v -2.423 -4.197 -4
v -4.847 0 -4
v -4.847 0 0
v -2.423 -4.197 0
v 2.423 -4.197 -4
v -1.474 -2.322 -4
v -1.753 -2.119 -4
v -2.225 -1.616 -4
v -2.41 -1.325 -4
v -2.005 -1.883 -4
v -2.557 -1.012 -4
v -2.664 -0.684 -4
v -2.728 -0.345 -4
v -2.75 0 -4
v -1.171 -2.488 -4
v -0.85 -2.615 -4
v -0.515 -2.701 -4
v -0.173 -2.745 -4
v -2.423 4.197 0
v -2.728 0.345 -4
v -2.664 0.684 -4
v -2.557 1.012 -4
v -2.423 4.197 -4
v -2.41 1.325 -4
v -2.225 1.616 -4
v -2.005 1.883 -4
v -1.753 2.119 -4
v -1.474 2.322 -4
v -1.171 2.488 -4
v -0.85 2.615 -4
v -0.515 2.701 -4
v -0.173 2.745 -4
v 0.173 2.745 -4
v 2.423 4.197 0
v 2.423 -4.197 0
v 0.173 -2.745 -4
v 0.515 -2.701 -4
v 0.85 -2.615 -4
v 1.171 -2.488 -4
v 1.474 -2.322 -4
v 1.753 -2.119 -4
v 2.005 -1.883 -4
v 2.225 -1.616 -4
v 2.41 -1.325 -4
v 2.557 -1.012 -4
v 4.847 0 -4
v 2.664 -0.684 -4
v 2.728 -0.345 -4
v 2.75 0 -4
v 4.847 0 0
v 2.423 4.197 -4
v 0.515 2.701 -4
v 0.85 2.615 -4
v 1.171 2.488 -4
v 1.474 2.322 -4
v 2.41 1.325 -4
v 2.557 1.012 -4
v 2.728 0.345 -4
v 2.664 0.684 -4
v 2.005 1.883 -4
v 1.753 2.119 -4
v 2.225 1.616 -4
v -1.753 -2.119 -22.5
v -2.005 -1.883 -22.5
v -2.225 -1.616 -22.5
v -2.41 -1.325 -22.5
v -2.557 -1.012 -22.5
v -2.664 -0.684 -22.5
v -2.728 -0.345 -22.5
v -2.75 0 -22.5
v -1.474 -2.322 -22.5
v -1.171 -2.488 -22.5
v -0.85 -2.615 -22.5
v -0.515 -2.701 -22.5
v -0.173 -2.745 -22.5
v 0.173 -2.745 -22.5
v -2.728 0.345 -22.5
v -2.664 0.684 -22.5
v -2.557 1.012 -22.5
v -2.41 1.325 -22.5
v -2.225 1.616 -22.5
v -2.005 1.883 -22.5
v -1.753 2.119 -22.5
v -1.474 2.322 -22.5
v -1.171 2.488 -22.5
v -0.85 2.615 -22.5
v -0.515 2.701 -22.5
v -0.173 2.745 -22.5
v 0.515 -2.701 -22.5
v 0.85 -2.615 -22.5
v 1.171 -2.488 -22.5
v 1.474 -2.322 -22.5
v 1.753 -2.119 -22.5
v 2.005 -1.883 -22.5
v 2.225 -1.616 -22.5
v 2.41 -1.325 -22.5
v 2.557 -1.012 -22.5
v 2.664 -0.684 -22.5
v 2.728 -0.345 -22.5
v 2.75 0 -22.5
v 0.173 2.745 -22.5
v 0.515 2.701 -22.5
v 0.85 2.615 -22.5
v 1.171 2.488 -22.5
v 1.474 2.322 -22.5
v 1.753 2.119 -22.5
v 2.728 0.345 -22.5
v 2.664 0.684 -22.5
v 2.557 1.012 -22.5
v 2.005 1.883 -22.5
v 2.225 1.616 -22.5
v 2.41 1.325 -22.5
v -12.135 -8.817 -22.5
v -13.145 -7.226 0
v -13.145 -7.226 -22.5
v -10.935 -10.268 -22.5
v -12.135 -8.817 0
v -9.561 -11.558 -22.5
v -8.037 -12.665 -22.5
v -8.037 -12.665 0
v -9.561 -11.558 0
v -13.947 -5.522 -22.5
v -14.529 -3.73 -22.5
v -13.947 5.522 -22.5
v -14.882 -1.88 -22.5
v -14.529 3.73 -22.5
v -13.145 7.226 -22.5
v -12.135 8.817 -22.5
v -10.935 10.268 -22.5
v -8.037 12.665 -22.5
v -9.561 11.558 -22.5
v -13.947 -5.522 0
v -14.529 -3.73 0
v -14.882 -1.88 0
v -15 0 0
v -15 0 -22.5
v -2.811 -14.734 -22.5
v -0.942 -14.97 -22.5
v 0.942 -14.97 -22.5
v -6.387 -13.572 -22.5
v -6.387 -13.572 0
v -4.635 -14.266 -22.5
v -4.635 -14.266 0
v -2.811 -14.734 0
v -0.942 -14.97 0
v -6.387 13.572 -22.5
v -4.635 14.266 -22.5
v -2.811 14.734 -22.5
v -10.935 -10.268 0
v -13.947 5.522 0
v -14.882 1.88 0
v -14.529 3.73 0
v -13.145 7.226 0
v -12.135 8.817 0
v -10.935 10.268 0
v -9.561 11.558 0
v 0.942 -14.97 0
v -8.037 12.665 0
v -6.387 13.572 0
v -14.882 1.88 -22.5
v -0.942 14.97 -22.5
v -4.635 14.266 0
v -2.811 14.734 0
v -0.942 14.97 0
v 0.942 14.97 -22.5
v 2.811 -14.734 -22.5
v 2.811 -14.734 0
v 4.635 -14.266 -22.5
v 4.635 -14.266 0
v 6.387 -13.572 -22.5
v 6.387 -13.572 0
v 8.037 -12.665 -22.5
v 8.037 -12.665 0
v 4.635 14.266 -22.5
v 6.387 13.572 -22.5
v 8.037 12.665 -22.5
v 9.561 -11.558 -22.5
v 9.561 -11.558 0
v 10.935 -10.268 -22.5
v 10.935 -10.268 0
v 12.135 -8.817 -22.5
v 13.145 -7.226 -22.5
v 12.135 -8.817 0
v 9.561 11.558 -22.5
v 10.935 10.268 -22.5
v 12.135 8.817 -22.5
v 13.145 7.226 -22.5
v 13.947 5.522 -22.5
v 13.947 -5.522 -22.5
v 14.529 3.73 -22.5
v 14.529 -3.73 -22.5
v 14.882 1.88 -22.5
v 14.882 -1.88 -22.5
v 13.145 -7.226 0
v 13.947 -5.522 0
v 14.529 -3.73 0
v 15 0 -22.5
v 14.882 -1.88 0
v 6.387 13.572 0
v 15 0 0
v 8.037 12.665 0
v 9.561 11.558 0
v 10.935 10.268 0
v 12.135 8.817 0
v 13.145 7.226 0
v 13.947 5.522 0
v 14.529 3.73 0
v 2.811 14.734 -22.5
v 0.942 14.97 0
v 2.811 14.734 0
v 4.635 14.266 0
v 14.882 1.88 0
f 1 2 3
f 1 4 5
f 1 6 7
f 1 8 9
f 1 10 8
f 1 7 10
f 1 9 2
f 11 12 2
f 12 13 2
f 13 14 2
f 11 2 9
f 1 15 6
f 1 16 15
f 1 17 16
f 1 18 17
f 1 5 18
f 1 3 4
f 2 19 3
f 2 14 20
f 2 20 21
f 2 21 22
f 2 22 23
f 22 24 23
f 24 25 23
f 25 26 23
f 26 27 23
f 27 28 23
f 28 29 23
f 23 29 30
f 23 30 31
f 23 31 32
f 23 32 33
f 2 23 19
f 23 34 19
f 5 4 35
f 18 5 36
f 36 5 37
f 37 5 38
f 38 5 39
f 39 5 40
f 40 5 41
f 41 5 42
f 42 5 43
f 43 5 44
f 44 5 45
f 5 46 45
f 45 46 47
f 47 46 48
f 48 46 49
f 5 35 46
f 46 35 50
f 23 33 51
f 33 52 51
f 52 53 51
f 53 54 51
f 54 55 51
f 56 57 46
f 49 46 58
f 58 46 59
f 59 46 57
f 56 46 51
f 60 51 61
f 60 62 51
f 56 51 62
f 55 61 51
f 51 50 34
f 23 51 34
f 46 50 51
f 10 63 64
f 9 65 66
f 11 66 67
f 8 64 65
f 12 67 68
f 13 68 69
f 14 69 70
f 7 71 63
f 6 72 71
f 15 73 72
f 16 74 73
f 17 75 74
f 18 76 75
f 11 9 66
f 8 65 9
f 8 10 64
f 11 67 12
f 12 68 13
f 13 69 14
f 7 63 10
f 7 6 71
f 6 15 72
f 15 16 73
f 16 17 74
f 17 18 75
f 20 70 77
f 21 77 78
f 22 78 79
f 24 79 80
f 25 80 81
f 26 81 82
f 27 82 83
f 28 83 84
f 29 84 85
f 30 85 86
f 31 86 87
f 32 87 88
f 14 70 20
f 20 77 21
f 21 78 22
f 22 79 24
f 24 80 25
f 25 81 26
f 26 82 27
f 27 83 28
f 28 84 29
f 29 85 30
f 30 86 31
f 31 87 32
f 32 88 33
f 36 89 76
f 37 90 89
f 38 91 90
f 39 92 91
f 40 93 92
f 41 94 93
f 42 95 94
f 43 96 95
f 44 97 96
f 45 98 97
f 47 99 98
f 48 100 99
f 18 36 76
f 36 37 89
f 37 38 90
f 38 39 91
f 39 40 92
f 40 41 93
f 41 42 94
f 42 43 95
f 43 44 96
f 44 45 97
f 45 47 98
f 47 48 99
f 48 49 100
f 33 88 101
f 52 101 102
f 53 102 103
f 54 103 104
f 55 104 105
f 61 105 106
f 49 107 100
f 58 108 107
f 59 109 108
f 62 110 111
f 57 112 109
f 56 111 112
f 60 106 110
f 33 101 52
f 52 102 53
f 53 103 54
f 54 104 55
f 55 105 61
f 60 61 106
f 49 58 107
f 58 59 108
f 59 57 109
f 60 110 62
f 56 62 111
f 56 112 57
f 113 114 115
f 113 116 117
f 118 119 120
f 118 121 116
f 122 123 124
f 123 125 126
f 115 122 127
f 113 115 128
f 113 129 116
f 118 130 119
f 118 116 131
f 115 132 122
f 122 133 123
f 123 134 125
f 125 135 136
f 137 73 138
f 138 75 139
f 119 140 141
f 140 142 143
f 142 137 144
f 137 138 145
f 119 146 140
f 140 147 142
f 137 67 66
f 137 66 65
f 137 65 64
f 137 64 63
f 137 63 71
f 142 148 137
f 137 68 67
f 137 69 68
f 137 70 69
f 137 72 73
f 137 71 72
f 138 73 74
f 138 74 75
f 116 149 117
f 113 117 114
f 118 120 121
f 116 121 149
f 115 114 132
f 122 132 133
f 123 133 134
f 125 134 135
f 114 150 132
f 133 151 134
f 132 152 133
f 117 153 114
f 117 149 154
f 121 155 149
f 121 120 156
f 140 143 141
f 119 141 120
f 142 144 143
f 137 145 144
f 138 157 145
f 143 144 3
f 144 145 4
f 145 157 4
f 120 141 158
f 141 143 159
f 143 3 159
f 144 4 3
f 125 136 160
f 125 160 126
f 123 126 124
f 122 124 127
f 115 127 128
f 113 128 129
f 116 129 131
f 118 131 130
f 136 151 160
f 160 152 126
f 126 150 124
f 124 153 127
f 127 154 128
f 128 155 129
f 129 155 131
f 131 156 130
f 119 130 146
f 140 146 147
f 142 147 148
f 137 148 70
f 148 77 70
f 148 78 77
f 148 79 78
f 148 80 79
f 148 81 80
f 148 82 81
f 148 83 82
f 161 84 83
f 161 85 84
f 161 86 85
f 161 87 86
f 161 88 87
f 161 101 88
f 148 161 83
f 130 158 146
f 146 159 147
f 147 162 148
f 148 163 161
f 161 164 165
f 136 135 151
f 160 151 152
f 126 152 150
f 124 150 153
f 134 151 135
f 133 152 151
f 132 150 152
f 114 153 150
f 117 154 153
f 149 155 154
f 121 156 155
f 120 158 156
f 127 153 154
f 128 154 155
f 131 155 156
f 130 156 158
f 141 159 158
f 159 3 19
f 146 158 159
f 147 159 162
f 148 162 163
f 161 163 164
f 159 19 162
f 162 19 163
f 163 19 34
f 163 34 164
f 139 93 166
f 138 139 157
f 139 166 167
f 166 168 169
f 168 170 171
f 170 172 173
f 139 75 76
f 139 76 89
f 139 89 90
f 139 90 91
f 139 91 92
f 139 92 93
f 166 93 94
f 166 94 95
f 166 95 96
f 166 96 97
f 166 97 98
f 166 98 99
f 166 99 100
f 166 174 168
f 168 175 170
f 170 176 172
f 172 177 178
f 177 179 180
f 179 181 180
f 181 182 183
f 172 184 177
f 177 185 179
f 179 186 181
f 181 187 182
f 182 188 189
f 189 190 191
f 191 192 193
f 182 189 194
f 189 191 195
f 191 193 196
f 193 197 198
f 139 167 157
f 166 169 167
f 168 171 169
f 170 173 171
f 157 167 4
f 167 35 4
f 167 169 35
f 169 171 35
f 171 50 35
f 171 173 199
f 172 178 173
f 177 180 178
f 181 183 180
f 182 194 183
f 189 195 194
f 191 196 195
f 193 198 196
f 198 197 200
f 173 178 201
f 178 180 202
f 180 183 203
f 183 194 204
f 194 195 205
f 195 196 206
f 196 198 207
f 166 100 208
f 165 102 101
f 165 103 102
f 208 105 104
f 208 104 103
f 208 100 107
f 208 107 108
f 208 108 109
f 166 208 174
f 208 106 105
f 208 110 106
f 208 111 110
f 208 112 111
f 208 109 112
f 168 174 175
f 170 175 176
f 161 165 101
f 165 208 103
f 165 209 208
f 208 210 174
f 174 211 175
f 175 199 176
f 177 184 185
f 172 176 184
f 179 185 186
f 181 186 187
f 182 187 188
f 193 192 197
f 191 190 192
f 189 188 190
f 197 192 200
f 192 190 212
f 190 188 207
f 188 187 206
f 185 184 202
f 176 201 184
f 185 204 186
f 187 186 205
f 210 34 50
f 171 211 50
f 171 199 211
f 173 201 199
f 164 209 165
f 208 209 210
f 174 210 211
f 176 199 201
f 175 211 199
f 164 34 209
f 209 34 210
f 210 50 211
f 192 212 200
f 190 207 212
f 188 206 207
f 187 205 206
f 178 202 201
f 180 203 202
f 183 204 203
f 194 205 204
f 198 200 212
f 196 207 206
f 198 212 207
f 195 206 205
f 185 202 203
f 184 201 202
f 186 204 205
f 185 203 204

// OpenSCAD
$fn = 50;

difference() {
	union() {
		translate(v = [0, 0, -22.5]) {
			cylinder(h = 22.5, r = 15.0);
		}
	}
	union() {
		translate(v = [0, 0, 0]) {
			rotate(a = [0, 0, 0]) {
				difference() {
					union() {
						translate(v = [0, 0, -4]) {
							linear_extrude(height = 4) {
								polygon(points = [[4.8468, 0.0], [2.4234000000000004, 4.197451927062417], [-2.423399999999999, 4.197451927062417], [-4.8468, 5.935618106107392e-16], [-2.423400000000002, -4.197451927062416], [2.423399999999997, -4.197451927062419]]);
							}
						}
					}
					union();
				}
			}
		}
		#translate(v = [0, 0, -100.0]) {
			cylinder(h = 200, r = 2.75);
		}
	}
}
